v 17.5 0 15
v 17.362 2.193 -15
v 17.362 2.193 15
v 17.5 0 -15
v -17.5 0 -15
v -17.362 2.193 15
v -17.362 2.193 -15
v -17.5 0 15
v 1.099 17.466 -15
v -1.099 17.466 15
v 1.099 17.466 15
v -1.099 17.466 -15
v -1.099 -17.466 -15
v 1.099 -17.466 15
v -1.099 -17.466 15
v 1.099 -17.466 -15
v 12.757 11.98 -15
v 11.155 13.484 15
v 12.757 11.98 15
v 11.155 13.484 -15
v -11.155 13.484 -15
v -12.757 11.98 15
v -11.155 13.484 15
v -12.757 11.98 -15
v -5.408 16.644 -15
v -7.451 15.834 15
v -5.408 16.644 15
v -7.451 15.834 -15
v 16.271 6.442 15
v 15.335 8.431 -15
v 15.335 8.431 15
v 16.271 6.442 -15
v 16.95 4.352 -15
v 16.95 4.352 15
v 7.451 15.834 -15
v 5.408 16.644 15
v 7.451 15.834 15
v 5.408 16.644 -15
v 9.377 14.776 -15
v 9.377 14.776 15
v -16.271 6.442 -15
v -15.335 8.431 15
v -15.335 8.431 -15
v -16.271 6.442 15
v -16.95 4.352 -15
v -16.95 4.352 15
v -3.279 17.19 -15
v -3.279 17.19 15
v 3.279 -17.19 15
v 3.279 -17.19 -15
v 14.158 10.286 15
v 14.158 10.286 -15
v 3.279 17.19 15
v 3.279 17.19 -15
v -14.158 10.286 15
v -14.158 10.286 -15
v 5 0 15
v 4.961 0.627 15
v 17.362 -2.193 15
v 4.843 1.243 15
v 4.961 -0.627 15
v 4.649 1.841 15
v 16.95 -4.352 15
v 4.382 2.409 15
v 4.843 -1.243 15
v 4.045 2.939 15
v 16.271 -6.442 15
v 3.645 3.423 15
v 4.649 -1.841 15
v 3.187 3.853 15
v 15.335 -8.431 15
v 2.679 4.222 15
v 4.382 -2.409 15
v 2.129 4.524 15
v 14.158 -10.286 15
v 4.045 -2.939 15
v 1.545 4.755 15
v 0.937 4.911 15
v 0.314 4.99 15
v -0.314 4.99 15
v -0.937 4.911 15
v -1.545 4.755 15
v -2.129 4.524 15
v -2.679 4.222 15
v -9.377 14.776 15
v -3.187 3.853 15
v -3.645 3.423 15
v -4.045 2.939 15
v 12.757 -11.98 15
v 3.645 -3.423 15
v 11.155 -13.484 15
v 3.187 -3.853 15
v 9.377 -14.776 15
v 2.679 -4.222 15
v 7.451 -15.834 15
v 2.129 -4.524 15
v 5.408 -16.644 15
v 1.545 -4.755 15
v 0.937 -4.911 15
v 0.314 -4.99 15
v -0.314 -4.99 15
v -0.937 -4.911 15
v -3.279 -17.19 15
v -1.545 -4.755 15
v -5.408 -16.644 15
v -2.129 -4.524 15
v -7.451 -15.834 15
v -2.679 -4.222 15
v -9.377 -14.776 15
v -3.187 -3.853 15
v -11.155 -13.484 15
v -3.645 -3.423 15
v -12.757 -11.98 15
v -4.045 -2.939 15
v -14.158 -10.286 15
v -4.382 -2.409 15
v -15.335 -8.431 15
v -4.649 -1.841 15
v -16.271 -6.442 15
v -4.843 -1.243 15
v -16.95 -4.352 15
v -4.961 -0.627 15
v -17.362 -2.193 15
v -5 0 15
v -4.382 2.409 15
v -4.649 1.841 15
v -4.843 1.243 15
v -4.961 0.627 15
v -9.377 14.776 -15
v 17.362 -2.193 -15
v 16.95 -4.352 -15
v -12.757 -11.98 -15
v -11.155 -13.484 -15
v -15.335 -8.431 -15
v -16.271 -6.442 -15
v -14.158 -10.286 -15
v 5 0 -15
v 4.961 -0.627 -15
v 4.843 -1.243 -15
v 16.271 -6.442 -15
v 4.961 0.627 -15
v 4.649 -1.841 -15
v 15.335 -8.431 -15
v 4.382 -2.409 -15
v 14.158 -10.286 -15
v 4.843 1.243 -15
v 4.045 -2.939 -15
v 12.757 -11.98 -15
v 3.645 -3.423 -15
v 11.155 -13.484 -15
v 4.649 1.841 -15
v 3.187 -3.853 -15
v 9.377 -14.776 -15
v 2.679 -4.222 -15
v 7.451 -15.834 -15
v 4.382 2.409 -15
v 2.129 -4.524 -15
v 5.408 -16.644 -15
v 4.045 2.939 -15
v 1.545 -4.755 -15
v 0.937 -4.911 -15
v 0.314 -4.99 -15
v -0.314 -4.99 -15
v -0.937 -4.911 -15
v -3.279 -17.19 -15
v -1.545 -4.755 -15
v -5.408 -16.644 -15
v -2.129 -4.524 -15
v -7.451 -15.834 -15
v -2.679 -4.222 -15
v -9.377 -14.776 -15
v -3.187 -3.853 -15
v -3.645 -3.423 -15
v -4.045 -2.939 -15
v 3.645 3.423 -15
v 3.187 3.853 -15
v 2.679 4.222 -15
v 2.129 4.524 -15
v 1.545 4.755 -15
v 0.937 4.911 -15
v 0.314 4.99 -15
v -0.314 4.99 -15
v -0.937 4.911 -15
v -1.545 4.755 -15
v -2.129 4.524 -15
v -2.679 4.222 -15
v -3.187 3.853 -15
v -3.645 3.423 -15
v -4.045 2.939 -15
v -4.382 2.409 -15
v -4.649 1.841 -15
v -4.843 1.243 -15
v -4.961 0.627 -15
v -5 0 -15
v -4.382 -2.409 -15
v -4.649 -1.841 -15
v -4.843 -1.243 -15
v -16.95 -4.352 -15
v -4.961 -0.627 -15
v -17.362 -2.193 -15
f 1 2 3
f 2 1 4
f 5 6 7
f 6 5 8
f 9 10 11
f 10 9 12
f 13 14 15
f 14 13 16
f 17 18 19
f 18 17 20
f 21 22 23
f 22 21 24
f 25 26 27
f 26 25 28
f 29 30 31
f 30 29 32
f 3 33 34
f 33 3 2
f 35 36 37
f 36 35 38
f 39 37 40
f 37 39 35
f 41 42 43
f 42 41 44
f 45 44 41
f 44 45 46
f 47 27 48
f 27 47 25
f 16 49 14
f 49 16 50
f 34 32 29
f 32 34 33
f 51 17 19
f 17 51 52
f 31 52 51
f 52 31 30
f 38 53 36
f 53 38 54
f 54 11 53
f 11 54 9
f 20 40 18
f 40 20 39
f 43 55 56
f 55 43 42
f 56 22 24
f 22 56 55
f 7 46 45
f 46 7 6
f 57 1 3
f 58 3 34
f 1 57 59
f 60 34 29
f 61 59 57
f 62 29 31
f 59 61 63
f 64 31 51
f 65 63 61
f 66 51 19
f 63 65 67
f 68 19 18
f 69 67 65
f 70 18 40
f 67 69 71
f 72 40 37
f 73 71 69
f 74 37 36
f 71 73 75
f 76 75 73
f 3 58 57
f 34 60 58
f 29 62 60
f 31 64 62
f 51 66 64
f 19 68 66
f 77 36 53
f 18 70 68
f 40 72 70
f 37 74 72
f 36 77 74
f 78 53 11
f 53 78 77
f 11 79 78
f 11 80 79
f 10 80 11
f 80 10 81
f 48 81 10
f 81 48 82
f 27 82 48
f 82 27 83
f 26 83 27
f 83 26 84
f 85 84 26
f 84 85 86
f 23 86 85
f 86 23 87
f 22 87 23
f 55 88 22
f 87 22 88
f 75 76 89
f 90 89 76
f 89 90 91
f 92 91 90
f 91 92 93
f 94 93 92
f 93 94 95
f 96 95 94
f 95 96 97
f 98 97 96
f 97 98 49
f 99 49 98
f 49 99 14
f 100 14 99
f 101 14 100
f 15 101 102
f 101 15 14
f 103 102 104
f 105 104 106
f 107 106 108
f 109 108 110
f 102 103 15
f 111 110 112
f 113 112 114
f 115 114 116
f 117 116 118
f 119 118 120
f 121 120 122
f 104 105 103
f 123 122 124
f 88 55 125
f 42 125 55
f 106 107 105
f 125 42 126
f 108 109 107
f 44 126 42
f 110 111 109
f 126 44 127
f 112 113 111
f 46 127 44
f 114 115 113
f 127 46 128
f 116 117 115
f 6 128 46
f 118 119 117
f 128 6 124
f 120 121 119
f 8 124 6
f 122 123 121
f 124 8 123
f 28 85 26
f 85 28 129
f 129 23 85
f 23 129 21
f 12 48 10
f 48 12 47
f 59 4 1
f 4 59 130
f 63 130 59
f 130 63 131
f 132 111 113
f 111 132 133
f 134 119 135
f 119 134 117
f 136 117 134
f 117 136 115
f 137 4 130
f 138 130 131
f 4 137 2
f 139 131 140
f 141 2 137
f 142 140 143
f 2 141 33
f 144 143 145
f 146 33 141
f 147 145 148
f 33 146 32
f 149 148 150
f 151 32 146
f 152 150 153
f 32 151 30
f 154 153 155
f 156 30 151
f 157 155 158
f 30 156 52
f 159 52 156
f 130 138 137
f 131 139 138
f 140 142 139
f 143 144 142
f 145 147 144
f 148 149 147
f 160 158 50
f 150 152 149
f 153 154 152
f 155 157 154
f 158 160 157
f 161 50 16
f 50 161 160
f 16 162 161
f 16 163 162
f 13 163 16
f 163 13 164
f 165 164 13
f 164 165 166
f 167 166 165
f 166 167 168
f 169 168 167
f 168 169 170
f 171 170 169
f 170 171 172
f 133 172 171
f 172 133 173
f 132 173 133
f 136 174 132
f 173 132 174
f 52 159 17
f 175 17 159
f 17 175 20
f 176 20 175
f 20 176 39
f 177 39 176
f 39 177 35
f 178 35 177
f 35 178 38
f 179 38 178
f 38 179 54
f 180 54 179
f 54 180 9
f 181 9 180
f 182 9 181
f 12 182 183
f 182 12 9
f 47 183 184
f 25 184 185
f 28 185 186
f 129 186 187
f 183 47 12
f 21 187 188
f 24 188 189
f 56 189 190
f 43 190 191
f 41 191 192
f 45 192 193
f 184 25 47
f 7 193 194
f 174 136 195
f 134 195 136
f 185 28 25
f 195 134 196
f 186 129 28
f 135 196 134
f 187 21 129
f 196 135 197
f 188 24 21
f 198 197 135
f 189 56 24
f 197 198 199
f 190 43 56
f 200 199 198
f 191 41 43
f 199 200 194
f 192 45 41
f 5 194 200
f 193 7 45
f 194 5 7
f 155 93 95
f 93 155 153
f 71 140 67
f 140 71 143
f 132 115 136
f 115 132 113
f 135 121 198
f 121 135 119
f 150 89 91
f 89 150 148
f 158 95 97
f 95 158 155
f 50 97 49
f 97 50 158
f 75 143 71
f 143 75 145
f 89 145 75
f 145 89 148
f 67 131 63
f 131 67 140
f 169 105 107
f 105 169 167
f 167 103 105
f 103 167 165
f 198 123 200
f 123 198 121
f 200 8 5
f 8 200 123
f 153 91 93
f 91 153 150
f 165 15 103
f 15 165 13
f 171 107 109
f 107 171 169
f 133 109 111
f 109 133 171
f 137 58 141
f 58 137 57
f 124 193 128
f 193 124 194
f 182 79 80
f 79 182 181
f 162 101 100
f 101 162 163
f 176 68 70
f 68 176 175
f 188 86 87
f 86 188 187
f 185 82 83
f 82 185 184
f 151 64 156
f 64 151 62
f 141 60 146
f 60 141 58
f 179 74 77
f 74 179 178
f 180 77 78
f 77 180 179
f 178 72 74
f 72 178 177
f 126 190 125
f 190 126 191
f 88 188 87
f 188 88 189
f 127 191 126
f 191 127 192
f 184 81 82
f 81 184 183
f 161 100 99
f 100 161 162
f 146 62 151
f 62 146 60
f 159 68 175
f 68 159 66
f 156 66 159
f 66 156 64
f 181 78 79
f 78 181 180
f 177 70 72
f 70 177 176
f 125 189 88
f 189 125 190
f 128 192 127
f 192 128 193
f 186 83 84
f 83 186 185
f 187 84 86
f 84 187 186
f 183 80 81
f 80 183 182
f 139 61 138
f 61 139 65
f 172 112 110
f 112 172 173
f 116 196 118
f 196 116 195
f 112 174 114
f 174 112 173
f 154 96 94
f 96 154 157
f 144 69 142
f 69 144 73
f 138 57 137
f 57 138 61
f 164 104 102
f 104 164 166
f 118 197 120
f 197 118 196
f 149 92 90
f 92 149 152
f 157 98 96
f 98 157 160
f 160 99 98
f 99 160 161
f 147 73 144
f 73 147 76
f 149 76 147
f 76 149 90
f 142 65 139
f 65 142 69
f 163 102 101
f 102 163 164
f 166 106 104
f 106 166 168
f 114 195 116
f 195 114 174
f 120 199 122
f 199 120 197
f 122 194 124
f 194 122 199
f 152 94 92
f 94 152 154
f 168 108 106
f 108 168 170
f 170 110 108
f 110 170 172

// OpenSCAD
$fn = 50;


difference() {
	union() {
		translate(v = [0, 0, -15.0000000000]) {
			cylinder(h = 30, r = 17.5000000000);
		}
	}
	union() {
		translate(v = [0, 0, -100.0000000000]) {
			cylinder(h = 200, r = 5);
		}
	}
}
